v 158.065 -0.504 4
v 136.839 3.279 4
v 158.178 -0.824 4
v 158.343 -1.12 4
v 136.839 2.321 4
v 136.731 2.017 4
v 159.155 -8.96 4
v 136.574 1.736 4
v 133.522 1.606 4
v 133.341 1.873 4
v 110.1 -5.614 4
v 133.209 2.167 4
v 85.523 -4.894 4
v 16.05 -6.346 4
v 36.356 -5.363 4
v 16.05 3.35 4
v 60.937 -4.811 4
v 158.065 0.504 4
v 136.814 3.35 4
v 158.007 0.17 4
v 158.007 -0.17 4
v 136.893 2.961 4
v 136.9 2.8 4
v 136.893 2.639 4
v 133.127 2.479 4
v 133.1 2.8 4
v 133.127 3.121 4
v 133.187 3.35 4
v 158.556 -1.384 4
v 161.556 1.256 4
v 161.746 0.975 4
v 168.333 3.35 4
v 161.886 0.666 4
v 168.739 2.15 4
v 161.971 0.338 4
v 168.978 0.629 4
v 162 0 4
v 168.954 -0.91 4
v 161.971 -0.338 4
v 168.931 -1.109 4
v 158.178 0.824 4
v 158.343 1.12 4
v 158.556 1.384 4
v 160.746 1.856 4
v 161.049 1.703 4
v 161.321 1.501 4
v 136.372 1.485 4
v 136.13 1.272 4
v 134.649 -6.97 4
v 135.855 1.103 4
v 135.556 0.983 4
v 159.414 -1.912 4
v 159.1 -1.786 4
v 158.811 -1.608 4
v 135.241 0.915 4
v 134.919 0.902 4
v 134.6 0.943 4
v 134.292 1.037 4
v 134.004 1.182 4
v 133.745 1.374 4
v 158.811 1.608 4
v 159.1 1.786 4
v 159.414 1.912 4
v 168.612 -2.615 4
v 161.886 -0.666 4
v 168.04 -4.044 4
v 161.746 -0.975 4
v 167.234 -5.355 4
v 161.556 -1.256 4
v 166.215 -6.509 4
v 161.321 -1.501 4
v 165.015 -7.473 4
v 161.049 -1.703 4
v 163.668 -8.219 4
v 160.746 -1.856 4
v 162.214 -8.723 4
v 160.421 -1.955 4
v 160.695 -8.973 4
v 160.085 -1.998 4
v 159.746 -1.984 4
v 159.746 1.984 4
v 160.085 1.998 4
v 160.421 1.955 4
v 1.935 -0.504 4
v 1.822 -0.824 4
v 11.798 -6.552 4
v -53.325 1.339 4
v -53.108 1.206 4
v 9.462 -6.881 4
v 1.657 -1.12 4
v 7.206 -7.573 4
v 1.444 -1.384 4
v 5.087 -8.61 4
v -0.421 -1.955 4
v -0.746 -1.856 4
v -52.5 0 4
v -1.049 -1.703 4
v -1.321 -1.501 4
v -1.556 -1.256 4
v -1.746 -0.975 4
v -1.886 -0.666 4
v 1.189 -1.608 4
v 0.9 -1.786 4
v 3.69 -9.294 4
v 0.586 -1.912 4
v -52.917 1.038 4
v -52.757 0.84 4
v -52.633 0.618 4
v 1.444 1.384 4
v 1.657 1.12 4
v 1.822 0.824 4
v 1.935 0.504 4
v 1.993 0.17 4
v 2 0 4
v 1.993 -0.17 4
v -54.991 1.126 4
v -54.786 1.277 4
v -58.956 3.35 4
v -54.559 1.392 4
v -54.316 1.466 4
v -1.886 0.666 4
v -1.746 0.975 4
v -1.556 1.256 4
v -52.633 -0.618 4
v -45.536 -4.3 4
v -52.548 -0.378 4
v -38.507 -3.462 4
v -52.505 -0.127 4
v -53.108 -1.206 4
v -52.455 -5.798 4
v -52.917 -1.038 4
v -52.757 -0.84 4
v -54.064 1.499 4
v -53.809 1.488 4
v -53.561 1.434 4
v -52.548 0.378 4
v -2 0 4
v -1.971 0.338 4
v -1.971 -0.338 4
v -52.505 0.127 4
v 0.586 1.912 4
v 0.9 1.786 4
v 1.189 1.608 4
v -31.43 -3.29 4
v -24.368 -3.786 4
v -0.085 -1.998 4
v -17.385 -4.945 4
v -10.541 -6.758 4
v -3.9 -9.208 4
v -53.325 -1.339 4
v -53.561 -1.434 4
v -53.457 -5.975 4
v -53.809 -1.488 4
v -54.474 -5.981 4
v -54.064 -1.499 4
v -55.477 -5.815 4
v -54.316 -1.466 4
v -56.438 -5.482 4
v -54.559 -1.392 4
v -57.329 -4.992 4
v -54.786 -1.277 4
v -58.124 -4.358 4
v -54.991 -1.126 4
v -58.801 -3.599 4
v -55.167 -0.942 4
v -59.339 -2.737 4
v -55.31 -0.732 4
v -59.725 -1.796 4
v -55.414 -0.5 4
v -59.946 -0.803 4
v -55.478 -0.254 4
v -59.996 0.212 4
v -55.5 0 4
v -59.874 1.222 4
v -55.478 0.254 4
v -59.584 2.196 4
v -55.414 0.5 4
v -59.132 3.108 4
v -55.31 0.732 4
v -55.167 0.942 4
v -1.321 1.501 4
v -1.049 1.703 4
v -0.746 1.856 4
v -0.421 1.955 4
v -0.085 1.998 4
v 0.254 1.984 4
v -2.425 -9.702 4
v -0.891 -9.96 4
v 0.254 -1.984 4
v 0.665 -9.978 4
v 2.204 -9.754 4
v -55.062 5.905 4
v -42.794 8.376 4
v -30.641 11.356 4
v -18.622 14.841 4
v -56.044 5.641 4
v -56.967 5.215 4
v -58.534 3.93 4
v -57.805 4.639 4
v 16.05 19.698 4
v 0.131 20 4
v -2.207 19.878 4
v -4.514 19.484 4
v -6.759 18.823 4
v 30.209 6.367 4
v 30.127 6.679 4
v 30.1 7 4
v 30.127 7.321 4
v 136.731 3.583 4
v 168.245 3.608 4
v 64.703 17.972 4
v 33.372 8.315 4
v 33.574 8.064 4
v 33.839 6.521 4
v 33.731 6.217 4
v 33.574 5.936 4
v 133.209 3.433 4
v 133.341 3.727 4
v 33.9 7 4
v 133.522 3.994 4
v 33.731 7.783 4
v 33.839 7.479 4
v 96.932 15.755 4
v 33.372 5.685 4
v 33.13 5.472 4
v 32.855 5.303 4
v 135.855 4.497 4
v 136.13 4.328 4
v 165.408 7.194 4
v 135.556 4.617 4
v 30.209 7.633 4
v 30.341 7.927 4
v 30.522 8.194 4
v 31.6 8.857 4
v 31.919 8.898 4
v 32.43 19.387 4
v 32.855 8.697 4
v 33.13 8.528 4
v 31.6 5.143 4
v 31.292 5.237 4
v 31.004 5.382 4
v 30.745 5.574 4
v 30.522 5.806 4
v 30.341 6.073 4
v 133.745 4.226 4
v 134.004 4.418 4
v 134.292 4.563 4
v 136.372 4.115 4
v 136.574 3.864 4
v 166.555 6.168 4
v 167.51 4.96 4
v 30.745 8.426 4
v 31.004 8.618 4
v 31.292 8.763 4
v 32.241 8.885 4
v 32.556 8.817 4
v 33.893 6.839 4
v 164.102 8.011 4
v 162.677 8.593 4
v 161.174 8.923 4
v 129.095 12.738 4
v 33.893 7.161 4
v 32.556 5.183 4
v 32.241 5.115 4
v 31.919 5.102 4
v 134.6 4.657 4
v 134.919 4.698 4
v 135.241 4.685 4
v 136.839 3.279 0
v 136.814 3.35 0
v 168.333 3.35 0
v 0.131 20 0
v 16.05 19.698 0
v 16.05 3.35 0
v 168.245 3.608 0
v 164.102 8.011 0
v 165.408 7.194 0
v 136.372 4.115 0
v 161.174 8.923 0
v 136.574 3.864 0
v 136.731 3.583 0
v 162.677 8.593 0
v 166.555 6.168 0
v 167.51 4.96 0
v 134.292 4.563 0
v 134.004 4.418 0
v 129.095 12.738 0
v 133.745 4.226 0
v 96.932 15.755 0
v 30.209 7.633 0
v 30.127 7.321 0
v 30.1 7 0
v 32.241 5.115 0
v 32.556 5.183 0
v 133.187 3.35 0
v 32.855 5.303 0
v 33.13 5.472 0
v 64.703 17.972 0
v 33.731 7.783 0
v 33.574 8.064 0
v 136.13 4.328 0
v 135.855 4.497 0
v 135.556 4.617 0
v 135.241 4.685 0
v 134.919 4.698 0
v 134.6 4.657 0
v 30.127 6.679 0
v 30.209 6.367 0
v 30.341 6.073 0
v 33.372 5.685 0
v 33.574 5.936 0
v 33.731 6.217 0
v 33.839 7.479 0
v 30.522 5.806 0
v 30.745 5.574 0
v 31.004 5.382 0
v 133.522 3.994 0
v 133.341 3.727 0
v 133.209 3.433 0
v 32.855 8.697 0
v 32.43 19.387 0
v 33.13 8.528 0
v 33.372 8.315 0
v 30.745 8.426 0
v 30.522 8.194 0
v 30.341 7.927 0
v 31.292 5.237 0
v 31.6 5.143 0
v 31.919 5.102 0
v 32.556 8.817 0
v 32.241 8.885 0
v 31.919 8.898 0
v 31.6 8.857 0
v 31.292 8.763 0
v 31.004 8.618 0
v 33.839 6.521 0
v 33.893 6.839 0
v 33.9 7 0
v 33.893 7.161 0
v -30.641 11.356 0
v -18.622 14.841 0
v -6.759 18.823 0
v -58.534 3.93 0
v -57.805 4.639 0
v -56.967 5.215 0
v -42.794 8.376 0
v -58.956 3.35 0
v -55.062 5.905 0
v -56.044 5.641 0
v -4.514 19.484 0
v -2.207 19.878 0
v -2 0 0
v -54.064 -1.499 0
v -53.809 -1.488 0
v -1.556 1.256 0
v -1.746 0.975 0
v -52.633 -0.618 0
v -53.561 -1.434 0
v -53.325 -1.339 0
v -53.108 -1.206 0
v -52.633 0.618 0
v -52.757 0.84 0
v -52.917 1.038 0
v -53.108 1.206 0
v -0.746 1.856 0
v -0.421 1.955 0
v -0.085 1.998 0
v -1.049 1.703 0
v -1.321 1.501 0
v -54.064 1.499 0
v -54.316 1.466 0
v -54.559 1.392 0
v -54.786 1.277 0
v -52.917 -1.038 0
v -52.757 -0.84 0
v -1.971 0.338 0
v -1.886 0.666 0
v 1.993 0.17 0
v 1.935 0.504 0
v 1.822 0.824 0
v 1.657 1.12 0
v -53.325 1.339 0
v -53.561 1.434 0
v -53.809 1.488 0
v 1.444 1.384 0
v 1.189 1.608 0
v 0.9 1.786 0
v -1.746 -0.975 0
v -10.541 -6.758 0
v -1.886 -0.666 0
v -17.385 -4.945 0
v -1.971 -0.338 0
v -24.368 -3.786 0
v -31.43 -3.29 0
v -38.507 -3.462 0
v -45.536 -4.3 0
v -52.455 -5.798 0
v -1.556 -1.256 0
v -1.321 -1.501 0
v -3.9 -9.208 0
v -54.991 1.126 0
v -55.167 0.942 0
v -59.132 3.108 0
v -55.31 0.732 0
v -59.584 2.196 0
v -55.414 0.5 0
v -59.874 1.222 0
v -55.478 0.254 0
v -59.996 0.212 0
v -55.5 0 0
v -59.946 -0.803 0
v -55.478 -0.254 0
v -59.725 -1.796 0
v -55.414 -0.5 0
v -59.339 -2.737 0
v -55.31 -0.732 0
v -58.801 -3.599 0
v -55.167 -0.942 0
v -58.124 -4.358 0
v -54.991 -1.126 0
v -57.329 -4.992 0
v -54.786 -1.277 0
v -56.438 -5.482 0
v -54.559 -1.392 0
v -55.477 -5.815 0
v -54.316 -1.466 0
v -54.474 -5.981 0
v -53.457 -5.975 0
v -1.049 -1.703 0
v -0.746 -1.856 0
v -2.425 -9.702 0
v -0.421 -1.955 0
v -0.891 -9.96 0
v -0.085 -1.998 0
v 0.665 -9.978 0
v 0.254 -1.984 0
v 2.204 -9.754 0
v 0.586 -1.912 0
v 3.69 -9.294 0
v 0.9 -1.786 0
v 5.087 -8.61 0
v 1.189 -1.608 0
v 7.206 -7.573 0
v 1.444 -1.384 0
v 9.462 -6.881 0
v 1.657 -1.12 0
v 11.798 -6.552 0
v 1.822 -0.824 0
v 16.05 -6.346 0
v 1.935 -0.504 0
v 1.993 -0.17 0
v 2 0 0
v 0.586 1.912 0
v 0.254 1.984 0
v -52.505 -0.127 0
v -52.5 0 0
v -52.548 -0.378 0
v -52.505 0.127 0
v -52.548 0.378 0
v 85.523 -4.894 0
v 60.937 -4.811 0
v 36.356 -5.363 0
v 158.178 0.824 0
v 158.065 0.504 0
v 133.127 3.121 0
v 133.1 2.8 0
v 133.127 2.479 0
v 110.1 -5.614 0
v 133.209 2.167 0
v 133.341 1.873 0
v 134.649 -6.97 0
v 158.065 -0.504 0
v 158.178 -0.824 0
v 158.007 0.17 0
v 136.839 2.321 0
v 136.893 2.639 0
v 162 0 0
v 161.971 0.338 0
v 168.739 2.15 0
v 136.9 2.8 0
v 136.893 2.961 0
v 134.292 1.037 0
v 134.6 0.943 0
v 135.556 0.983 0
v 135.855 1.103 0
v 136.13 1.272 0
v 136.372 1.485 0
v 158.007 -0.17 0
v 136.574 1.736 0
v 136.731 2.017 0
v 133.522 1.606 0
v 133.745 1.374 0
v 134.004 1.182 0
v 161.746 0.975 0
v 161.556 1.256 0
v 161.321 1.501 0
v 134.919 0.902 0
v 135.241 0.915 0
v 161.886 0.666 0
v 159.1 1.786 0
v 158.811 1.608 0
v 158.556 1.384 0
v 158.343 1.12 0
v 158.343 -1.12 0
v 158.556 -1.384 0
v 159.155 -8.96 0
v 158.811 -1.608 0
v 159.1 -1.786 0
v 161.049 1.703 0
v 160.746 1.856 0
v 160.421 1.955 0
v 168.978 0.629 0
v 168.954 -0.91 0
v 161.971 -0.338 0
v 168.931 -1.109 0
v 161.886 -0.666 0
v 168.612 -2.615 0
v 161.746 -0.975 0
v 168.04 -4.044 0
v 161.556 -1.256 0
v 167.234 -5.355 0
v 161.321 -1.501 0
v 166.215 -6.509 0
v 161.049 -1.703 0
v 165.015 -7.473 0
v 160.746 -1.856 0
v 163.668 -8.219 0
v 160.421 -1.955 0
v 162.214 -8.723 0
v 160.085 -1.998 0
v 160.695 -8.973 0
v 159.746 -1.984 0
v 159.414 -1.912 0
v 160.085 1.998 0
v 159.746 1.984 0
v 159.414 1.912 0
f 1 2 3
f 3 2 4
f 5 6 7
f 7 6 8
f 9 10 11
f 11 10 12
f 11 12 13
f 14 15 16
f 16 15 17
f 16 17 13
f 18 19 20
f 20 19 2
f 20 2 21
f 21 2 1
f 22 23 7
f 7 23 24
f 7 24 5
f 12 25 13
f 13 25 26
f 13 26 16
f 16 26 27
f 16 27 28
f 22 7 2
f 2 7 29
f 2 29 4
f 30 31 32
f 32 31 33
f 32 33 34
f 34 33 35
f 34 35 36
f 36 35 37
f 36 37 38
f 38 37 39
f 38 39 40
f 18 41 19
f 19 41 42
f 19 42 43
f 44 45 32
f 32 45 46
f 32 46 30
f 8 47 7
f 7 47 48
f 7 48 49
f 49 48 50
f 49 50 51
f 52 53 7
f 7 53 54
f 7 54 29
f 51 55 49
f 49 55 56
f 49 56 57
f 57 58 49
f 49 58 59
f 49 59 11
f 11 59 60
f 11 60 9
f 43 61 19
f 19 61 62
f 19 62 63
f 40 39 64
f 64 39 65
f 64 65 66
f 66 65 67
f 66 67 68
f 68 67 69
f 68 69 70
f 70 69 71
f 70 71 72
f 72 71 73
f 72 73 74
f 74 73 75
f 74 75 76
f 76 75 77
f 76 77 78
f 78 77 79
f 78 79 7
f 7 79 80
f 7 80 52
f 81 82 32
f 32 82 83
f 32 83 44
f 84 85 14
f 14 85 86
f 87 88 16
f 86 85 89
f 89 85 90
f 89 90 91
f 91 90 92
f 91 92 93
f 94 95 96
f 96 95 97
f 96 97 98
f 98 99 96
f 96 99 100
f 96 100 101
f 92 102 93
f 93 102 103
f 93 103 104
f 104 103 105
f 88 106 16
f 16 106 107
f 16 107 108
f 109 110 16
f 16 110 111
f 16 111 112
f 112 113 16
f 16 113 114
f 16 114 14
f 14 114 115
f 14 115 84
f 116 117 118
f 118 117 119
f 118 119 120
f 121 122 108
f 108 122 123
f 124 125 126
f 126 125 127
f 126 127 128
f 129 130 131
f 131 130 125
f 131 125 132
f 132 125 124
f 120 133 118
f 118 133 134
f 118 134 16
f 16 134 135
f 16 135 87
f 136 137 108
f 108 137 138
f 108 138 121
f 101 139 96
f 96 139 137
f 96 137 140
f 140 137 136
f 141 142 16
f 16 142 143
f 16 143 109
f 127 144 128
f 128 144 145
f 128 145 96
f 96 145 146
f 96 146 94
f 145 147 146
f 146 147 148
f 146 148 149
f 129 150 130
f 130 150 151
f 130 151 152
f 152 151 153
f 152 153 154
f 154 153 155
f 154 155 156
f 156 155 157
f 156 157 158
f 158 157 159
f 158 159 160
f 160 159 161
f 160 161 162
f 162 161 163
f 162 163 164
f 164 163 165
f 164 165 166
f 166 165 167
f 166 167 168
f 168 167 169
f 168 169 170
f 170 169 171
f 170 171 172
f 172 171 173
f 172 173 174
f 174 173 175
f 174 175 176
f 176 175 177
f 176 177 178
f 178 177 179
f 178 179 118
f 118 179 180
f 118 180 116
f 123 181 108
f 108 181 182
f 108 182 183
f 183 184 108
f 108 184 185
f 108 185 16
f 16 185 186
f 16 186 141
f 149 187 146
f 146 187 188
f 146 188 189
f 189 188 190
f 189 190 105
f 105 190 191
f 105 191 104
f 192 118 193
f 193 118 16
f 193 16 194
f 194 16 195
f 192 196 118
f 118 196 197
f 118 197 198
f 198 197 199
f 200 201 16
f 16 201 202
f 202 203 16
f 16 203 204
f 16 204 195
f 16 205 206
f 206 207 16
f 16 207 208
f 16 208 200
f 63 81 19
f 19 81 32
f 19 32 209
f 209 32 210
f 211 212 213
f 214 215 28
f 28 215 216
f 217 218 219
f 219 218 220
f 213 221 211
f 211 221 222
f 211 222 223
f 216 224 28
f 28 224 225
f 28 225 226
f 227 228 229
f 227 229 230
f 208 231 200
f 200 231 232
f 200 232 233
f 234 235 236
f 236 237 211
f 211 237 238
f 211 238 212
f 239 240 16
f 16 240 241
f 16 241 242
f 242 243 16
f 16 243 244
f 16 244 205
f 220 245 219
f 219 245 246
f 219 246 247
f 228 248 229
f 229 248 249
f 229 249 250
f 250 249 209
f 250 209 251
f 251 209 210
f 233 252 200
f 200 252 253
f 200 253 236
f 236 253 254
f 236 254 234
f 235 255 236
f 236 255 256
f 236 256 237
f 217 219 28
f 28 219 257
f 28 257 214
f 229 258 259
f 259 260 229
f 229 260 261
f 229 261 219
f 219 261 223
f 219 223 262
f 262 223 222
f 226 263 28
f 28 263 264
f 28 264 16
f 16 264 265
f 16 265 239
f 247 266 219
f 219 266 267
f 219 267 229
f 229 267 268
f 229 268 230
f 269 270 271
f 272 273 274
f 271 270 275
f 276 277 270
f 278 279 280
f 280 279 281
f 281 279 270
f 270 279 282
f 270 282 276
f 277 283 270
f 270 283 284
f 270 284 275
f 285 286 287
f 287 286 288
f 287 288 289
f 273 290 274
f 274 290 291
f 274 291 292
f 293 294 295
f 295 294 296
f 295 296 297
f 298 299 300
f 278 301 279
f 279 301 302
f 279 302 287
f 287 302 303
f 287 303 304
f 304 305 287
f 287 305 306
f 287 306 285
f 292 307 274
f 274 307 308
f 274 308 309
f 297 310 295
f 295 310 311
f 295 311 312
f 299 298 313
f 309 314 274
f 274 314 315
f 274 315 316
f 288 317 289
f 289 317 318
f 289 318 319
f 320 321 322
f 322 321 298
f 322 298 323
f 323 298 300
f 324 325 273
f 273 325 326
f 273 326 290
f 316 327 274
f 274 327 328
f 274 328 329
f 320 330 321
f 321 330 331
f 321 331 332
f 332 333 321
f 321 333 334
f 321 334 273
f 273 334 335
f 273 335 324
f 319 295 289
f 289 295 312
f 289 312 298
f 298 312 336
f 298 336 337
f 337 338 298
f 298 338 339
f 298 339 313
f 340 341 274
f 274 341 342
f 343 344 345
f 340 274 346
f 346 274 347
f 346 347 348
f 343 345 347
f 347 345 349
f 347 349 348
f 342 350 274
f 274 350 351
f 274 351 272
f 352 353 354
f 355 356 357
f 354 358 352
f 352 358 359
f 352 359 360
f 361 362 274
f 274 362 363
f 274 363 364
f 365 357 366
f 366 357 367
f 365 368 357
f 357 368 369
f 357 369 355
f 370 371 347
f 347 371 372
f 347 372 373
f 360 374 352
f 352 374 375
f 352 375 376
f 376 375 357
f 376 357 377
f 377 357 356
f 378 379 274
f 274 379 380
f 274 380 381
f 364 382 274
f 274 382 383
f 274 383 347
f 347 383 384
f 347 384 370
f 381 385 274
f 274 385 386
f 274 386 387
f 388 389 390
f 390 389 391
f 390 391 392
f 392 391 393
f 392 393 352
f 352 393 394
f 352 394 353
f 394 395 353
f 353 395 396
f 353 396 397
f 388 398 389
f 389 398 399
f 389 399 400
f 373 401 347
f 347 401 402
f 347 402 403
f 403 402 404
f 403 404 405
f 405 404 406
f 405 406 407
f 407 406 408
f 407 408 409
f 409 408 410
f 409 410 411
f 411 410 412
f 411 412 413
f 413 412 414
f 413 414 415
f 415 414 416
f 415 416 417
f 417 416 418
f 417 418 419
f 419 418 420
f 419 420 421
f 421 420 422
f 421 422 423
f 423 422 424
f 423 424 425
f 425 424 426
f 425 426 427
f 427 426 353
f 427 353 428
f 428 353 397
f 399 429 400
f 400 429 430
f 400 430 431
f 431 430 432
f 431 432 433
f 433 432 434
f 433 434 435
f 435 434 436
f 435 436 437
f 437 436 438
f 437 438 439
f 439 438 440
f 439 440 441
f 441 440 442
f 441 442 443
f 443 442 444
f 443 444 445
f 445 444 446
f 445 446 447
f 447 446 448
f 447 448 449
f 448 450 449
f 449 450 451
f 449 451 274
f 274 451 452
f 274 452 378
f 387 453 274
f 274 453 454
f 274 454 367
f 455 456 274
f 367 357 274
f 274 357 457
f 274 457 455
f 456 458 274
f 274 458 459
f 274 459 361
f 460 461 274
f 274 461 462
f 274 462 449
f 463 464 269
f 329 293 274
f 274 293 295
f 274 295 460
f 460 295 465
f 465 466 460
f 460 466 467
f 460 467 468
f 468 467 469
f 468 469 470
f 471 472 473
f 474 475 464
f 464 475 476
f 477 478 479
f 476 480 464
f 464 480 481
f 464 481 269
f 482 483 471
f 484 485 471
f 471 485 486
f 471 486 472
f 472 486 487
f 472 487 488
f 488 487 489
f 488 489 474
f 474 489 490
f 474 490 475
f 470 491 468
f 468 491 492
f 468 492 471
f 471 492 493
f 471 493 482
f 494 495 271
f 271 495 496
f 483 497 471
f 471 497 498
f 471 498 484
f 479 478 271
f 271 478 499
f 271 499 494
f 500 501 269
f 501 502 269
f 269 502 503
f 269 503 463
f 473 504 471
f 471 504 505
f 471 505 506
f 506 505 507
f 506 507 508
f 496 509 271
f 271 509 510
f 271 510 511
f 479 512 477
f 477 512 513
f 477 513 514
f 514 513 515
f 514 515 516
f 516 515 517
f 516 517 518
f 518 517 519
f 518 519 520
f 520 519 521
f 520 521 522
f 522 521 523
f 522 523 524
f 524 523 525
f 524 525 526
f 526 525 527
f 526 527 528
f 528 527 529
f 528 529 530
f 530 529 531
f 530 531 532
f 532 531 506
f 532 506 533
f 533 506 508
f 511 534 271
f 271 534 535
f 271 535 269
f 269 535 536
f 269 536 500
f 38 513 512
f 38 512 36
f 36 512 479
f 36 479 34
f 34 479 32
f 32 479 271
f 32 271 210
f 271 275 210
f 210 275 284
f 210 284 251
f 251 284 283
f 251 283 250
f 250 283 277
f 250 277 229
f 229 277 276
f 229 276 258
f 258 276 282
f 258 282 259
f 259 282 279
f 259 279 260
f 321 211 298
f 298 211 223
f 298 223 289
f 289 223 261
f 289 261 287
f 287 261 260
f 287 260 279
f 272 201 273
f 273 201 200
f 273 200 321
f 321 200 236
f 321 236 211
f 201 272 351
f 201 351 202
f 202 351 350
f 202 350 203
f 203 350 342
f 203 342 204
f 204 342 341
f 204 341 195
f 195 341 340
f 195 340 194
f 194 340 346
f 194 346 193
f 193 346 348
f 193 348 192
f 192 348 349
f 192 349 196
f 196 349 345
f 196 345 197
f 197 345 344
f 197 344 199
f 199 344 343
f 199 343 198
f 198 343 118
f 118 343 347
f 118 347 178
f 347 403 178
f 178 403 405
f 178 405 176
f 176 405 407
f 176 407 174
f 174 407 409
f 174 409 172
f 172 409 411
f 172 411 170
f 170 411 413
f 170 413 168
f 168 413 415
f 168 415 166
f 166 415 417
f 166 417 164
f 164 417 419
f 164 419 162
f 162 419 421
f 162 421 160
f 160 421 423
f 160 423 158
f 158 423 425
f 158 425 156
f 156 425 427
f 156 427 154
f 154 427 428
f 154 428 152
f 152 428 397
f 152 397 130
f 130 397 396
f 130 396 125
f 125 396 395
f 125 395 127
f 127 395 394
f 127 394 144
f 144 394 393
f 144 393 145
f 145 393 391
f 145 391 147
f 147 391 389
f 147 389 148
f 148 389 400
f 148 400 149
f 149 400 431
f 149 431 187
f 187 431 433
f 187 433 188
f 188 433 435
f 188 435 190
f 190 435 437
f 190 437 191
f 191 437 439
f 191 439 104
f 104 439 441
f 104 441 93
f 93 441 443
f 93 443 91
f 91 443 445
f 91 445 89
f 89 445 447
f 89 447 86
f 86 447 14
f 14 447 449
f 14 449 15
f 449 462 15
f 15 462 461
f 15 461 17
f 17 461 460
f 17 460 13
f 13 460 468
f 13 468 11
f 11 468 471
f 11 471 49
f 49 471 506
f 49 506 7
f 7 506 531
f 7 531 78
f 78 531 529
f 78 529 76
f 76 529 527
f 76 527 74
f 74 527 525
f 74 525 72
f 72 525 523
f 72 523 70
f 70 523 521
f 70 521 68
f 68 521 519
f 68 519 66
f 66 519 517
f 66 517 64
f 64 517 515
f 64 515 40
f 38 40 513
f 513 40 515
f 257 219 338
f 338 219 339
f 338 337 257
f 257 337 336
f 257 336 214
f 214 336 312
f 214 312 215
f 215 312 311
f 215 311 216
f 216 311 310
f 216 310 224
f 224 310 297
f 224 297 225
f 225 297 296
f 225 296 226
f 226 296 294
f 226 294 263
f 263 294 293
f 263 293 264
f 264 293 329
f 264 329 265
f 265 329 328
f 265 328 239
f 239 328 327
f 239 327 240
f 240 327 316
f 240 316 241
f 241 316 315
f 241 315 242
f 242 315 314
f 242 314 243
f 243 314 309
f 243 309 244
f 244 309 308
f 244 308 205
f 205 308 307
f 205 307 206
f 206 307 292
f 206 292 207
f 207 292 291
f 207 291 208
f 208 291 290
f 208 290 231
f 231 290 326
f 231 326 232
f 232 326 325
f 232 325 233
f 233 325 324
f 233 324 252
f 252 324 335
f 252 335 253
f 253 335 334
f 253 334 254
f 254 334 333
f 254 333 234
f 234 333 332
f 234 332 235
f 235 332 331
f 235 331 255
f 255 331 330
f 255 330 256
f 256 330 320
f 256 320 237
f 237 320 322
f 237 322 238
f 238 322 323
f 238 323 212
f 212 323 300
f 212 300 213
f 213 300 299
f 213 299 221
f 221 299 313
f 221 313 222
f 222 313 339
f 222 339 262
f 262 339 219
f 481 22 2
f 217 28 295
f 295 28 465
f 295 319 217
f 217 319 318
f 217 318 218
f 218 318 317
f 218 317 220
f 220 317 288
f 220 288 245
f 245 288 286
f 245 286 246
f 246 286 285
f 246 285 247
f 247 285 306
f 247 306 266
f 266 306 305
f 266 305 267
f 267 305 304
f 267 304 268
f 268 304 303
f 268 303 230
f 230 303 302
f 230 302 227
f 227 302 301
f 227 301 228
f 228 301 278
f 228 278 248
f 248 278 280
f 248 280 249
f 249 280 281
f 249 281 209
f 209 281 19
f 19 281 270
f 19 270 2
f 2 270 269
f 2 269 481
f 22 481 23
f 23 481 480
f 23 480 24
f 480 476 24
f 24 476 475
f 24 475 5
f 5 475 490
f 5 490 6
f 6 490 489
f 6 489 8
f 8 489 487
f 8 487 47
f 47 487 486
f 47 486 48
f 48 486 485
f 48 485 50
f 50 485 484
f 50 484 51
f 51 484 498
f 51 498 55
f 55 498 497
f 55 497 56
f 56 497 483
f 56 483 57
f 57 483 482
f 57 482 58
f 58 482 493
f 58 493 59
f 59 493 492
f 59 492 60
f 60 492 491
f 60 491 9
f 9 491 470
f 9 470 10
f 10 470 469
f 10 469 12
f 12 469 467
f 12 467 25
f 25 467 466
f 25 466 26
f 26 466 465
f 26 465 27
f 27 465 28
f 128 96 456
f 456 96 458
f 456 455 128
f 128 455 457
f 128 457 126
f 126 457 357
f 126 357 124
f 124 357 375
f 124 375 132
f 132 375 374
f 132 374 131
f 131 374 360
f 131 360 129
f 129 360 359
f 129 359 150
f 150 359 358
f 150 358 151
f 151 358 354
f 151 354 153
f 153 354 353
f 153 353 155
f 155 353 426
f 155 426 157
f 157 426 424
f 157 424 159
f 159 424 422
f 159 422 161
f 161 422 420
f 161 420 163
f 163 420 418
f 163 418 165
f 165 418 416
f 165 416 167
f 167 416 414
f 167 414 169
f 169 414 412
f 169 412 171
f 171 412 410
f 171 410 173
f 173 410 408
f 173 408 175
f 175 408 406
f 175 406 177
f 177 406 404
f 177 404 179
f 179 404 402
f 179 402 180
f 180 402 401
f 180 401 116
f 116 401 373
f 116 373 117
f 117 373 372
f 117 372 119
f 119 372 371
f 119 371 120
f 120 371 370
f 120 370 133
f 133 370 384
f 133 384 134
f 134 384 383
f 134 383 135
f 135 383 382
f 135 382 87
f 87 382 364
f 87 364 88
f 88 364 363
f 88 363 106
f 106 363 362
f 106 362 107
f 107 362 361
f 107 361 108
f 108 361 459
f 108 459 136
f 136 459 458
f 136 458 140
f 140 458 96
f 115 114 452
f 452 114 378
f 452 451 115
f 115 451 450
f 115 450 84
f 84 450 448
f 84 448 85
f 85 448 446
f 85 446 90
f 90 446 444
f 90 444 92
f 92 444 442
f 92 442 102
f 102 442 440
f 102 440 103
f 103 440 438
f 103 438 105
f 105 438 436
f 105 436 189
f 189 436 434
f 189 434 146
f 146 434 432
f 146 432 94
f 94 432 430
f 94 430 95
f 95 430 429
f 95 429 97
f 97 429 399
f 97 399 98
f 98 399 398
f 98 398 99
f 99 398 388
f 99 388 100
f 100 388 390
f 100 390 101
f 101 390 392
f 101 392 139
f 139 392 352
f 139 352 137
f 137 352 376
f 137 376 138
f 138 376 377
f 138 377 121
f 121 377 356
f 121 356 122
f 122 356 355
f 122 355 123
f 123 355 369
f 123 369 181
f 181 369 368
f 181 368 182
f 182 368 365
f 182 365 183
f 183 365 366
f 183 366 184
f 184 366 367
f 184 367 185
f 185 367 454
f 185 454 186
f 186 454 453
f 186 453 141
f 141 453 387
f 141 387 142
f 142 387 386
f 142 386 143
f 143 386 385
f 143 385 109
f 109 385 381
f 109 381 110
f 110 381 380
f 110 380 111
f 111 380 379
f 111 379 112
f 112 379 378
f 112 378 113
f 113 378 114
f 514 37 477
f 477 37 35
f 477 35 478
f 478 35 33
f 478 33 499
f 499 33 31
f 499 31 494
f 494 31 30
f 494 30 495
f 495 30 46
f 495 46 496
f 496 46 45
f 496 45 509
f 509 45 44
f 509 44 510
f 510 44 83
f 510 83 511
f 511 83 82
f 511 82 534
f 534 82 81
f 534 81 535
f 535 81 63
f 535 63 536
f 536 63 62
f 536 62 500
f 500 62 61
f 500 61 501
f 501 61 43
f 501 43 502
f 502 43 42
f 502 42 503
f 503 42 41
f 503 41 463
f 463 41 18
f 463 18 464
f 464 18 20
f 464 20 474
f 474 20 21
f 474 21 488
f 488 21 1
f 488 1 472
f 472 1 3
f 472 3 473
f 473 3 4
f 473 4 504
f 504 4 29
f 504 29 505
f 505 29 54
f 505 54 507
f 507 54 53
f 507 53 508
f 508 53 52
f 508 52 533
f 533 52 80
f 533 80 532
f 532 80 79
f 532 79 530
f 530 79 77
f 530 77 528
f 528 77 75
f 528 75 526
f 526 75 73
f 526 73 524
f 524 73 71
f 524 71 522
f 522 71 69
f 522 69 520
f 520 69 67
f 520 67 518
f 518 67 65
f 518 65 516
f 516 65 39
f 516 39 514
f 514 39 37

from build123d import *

# Parameters (mm, degrees)
SKETCH_1_R          = 1.9
SKETCH_1_R_2        = 1.5
SKETCH_1_R_3        = 2
EXTRUDE_1_DEPTH     = 4
SKETCH_2_R          = 2
CUT_EXTRUDE_1_DEPTH = 171.226319939


with BuildPart() as part:
    # 草图1 → 凸台-拉伸1 (new body)
    with BuildSketch(Plane.XY):
        with BuildLine():
            Line((168.953879648, -0.909966618), (168.931448962, -1.108701692))
            ThreePointArc((168.931448962, -1.108701692), (165.63568786, -7.017052255), (159.155370177, -8.960279039))
            ThreePointArc((159.155370177, -8.960279039), (85.523468127, -4.894349995), (11.798026408, -6.552065898))
            ThreePointArc((11.798026408, -6.552065898), (8.320365096, -7.182704729), (5.086801975, -8.609555486))
            ThreePointArc((5.086801975, -8.609555486), (0.664725554, -9.977882538), (-3.899782135, -9.208240836))
            ThreePointArc((-3.899782135, -9.208240836), (-27.893230932, -3.454367969), (-52.455418381, -5.797781267))
            ThreePointArc((-52.455418381, -5.797781267), (-59.85652595, -1.304263697), (-55.061728395, 5.905313947))
            ThreePointArc((-55.061728395, 5.905313947), (-30.640902591, 11.356196493), (-6.759259259, 18.823188207))
            ThreePointArc((-6.759259259, 18.823188207), (-3.365966263, 19.714722192), (0.130908203, 19.999571571))
            ThreePointArc((0.130908203, 19.999571571), (80.824453525, 16.963385457), (161.173821166, 8.923124109))
            ThreePointArc((161.173821166, 8.923124109), (167.057974161, 5.584353207), (168.953879648, -0.909966618))
        make_face()
        with Locations((32, 7)):
            Circle(SKETCH_1_R, mode=Mode.SUBTRACT)
        with Locations((135, 2.8)):
            Circle(SKETCH_1_R, mode=Mode.SUBTRACT)
        with Locations((-54, 0)):
            Circle(SKETCH_1_R_2, mode=Mode.SUBTRACT)
        Circle(SKETCH_1_R_3, mode=Mode.SUBTRACT)
        with Locations((160, 0)):
            Circle(SKETCH_1_R_2, mode=Mode.SUBTRACT)
    extrude(amount=EXTRUDE_1_DEPTH)

    # 草图2 → 切除-拉伸1 (cut, through all)
    with BuildSketch(Plane.XY.offset(4)):
        with Locations((160, 0)):
            Circle(SKETCH_2_R)
    extrude(amount=-CUT_EXTRUDE_1_DEPTH, mode=Mode.SUBTRACT)


solid = part.part
